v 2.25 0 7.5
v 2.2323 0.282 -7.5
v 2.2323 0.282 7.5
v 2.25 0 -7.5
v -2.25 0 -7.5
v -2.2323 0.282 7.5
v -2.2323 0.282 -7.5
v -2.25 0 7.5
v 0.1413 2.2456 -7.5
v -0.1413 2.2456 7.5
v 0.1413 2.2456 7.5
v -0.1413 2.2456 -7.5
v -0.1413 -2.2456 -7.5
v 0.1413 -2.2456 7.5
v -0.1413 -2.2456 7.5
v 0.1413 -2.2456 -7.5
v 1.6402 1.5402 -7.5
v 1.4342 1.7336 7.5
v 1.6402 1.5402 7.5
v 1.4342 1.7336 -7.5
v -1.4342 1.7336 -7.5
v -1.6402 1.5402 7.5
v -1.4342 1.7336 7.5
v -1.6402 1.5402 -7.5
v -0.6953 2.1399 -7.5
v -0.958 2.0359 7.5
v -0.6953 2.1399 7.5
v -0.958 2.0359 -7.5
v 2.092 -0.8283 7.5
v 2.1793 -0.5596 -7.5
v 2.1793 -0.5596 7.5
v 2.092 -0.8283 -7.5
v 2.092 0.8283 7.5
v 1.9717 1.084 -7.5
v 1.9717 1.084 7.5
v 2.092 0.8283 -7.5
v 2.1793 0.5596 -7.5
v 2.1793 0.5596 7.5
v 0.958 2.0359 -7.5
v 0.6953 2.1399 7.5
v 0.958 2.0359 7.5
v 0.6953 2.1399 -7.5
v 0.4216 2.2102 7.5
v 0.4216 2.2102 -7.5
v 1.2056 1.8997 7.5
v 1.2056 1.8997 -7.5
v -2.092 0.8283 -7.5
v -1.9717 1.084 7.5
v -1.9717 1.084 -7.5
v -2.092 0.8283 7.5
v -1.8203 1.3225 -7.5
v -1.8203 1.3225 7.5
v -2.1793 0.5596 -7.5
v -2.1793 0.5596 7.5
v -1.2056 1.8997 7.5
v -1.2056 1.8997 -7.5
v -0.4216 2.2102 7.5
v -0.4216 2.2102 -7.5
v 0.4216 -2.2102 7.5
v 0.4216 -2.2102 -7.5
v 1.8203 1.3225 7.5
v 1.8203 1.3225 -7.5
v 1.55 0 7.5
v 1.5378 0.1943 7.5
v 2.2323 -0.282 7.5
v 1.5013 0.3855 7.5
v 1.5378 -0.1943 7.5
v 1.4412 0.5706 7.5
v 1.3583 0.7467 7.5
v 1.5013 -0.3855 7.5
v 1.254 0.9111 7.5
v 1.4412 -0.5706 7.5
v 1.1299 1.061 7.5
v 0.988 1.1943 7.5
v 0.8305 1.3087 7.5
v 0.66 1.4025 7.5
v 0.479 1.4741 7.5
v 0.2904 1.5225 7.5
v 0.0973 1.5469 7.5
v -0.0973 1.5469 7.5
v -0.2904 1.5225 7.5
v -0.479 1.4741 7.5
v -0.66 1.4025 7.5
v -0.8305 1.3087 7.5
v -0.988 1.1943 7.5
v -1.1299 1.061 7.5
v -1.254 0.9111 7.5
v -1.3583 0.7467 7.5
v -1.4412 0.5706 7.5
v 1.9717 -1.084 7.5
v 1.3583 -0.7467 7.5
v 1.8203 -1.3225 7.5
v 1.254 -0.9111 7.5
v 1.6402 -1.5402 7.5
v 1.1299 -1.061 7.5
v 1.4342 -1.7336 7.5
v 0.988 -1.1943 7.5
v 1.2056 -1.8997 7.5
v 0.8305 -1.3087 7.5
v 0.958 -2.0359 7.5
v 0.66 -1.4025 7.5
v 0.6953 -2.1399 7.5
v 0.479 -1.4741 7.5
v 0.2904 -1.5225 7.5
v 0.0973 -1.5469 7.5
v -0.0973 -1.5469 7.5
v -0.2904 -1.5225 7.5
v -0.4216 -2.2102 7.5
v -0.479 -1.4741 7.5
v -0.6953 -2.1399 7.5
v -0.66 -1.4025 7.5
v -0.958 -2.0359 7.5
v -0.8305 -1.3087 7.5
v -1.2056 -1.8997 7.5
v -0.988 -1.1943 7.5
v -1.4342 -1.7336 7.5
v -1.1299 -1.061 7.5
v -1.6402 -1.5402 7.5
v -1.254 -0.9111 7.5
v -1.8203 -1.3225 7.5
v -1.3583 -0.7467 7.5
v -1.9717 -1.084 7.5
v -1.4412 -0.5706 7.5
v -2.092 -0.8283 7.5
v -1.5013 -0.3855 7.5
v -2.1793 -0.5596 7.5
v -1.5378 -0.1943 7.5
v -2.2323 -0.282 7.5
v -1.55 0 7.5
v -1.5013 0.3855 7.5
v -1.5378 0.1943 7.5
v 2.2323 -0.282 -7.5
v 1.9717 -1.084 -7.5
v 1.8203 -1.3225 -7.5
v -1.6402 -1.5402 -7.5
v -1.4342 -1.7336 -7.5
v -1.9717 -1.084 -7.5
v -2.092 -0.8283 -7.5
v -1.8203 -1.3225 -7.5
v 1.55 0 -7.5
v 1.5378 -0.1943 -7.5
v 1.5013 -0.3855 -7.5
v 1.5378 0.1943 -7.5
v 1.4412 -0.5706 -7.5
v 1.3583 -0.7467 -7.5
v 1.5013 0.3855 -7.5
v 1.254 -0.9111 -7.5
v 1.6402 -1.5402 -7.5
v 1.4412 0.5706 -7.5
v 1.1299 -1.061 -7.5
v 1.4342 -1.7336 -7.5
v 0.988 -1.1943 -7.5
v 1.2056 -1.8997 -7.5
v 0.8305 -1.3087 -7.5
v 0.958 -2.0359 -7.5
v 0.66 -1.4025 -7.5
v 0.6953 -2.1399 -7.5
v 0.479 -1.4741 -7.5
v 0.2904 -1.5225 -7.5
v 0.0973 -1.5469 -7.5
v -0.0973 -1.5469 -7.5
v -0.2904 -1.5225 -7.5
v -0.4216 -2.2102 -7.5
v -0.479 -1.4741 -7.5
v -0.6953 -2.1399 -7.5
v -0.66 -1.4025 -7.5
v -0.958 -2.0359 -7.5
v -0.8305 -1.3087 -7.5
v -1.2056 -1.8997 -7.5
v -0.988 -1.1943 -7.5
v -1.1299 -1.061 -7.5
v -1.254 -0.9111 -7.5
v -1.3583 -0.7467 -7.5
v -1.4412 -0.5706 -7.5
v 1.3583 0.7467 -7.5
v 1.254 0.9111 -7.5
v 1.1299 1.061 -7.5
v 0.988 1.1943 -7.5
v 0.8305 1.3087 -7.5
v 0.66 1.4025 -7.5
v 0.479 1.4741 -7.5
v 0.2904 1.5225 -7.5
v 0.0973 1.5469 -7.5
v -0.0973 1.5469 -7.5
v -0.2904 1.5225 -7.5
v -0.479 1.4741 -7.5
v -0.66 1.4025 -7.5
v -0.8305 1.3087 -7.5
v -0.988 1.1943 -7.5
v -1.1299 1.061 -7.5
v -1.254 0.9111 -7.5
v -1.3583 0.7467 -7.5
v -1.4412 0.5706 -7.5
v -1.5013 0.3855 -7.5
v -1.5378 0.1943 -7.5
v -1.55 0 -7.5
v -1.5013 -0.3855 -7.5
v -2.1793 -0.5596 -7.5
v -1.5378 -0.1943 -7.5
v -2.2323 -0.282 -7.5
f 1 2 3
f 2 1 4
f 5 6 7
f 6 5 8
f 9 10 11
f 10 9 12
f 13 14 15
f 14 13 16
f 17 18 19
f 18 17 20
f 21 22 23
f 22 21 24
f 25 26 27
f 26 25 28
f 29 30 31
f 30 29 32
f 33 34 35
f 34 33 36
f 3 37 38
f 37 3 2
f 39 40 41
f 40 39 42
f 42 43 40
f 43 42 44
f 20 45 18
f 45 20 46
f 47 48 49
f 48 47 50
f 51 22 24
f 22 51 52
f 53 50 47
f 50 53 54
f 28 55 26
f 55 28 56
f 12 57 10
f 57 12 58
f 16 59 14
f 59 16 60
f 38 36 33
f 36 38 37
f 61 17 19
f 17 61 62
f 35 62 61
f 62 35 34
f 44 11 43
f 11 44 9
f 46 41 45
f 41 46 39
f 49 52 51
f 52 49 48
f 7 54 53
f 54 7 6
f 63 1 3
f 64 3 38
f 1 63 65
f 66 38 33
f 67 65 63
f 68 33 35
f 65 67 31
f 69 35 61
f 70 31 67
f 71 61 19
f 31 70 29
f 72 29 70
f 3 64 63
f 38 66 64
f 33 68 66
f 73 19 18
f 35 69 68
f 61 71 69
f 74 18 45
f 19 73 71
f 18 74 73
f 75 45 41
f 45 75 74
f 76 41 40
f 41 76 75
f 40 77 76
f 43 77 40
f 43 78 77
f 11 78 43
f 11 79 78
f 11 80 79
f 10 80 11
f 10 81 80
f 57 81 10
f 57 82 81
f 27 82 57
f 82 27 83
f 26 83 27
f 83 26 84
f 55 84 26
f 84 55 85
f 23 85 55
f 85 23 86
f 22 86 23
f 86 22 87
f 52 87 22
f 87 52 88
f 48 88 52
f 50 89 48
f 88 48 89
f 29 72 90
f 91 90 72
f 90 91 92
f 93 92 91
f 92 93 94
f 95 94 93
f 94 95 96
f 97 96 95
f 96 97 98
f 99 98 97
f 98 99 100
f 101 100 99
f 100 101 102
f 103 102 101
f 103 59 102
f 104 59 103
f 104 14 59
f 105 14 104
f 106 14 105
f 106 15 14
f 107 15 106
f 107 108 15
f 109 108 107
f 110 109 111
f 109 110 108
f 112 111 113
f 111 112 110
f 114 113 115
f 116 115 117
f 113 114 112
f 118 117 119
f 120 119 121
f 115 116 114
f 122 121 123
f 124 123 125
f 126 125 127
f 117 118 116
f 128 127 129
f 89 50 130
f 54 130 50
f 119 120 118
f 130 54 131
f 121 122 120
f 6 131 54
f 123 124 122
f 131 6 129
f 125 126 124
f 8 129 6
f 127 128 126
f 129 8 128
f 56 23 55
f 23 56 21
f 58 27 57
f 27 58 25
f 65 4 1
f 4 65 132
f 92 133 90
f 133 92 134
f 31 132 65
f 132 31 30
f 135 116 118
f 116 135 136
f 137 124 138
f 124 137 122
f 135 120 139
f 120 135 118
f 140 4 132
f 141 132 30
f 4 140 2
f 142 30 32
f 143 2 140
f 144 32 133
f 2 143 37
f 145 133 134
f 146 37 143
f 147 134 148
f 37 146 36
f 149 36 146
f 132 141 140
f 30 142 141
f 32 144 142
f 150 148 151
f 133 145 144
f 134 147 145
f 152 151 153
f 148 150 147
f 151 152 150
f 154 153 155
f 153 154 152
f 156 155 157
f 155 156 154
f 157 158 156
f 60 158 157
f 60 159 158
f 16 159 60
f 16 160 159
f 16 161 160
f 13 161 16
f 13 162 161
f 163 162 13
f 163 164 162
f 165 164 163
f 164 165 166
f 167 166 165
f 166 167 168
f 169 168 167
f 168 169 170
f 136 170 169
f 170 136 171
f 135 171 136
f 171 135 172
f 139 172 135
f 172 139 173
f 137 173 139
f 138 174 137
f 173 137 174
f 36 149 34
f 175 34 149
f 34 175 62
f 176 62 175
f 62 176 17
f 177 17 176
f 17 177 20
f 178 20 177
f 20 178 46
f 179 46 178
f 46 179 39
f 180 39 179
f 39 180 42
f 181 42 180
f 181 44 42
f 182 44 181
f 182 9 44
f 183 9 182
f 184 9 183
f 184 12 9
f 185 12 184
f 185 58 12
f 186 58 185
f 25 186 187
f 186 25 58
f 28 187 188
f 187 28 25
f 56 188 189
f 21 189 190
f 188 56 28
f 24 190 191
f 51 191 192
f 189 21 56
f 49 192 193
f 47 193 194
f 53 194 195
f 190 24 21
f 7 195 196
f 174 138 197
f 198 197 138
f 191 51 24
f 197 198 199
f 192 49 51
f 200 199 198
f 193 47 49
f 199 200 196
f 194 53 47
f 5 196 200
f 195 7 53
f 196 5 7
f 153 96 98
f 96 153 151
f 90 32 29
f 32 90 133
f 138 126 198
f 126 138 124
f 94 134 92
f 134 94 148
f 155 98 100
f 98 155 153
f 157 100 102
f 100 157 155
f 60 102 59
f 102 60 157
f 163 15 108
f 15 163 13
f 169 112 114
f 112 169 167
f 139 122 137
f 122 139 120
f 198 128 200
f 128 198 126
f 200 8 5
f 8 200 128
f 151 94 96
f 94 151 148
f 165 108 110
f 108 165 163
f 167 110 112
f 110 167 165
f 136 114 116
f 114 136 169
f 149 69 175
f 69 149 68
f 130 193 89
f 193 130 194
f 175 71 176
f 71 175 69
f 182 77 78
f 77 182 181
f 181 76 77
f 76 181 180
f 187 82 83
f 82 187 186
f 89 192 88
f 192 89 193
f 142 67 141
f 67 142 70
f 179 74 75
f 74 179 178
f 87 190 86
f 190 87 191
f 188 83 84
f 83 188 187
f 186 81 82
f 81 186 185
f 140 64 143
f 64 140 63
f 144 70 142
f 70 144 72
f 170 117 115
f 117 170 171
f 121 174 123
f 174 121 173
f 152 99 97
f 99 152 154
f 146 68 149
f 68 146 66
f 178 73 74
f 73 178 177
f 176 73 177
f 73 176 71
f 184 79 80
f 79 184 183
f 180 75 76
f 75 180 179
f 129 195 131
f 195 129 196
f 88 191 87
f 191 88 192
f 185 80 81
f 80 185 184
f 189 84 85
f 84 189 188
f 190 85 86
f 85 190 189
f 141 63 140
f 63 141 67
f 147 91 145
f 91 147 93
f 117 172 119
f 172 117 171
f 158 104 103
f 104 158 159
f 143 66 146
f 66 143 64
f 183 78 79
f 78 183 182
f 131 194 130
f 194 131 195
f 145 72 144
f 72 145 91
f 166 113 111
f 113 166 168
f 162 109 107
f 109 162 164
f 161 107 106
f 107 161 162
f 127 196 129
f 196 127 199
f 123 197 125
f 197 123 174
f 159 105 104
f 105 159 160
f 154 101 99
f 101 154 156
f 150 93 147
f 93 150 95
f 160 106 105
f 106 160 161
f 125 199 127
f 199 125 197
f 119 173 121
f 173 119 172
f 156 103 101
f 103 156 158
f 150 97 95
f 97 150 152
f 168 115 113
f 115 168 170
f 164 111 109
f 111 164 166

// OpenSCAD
$fn = 50;


difference() {
	union() {
		translate(v = [0, 0, -7.5000000000]) {
			cylinder(h = 15, r = 2.2500000000);
		}
	}
	union() {
		translate(v = [0, 0, -100.0000000000]) {
			cylinder(h = 200, r = 1.5500000000);
		}
	}
}
